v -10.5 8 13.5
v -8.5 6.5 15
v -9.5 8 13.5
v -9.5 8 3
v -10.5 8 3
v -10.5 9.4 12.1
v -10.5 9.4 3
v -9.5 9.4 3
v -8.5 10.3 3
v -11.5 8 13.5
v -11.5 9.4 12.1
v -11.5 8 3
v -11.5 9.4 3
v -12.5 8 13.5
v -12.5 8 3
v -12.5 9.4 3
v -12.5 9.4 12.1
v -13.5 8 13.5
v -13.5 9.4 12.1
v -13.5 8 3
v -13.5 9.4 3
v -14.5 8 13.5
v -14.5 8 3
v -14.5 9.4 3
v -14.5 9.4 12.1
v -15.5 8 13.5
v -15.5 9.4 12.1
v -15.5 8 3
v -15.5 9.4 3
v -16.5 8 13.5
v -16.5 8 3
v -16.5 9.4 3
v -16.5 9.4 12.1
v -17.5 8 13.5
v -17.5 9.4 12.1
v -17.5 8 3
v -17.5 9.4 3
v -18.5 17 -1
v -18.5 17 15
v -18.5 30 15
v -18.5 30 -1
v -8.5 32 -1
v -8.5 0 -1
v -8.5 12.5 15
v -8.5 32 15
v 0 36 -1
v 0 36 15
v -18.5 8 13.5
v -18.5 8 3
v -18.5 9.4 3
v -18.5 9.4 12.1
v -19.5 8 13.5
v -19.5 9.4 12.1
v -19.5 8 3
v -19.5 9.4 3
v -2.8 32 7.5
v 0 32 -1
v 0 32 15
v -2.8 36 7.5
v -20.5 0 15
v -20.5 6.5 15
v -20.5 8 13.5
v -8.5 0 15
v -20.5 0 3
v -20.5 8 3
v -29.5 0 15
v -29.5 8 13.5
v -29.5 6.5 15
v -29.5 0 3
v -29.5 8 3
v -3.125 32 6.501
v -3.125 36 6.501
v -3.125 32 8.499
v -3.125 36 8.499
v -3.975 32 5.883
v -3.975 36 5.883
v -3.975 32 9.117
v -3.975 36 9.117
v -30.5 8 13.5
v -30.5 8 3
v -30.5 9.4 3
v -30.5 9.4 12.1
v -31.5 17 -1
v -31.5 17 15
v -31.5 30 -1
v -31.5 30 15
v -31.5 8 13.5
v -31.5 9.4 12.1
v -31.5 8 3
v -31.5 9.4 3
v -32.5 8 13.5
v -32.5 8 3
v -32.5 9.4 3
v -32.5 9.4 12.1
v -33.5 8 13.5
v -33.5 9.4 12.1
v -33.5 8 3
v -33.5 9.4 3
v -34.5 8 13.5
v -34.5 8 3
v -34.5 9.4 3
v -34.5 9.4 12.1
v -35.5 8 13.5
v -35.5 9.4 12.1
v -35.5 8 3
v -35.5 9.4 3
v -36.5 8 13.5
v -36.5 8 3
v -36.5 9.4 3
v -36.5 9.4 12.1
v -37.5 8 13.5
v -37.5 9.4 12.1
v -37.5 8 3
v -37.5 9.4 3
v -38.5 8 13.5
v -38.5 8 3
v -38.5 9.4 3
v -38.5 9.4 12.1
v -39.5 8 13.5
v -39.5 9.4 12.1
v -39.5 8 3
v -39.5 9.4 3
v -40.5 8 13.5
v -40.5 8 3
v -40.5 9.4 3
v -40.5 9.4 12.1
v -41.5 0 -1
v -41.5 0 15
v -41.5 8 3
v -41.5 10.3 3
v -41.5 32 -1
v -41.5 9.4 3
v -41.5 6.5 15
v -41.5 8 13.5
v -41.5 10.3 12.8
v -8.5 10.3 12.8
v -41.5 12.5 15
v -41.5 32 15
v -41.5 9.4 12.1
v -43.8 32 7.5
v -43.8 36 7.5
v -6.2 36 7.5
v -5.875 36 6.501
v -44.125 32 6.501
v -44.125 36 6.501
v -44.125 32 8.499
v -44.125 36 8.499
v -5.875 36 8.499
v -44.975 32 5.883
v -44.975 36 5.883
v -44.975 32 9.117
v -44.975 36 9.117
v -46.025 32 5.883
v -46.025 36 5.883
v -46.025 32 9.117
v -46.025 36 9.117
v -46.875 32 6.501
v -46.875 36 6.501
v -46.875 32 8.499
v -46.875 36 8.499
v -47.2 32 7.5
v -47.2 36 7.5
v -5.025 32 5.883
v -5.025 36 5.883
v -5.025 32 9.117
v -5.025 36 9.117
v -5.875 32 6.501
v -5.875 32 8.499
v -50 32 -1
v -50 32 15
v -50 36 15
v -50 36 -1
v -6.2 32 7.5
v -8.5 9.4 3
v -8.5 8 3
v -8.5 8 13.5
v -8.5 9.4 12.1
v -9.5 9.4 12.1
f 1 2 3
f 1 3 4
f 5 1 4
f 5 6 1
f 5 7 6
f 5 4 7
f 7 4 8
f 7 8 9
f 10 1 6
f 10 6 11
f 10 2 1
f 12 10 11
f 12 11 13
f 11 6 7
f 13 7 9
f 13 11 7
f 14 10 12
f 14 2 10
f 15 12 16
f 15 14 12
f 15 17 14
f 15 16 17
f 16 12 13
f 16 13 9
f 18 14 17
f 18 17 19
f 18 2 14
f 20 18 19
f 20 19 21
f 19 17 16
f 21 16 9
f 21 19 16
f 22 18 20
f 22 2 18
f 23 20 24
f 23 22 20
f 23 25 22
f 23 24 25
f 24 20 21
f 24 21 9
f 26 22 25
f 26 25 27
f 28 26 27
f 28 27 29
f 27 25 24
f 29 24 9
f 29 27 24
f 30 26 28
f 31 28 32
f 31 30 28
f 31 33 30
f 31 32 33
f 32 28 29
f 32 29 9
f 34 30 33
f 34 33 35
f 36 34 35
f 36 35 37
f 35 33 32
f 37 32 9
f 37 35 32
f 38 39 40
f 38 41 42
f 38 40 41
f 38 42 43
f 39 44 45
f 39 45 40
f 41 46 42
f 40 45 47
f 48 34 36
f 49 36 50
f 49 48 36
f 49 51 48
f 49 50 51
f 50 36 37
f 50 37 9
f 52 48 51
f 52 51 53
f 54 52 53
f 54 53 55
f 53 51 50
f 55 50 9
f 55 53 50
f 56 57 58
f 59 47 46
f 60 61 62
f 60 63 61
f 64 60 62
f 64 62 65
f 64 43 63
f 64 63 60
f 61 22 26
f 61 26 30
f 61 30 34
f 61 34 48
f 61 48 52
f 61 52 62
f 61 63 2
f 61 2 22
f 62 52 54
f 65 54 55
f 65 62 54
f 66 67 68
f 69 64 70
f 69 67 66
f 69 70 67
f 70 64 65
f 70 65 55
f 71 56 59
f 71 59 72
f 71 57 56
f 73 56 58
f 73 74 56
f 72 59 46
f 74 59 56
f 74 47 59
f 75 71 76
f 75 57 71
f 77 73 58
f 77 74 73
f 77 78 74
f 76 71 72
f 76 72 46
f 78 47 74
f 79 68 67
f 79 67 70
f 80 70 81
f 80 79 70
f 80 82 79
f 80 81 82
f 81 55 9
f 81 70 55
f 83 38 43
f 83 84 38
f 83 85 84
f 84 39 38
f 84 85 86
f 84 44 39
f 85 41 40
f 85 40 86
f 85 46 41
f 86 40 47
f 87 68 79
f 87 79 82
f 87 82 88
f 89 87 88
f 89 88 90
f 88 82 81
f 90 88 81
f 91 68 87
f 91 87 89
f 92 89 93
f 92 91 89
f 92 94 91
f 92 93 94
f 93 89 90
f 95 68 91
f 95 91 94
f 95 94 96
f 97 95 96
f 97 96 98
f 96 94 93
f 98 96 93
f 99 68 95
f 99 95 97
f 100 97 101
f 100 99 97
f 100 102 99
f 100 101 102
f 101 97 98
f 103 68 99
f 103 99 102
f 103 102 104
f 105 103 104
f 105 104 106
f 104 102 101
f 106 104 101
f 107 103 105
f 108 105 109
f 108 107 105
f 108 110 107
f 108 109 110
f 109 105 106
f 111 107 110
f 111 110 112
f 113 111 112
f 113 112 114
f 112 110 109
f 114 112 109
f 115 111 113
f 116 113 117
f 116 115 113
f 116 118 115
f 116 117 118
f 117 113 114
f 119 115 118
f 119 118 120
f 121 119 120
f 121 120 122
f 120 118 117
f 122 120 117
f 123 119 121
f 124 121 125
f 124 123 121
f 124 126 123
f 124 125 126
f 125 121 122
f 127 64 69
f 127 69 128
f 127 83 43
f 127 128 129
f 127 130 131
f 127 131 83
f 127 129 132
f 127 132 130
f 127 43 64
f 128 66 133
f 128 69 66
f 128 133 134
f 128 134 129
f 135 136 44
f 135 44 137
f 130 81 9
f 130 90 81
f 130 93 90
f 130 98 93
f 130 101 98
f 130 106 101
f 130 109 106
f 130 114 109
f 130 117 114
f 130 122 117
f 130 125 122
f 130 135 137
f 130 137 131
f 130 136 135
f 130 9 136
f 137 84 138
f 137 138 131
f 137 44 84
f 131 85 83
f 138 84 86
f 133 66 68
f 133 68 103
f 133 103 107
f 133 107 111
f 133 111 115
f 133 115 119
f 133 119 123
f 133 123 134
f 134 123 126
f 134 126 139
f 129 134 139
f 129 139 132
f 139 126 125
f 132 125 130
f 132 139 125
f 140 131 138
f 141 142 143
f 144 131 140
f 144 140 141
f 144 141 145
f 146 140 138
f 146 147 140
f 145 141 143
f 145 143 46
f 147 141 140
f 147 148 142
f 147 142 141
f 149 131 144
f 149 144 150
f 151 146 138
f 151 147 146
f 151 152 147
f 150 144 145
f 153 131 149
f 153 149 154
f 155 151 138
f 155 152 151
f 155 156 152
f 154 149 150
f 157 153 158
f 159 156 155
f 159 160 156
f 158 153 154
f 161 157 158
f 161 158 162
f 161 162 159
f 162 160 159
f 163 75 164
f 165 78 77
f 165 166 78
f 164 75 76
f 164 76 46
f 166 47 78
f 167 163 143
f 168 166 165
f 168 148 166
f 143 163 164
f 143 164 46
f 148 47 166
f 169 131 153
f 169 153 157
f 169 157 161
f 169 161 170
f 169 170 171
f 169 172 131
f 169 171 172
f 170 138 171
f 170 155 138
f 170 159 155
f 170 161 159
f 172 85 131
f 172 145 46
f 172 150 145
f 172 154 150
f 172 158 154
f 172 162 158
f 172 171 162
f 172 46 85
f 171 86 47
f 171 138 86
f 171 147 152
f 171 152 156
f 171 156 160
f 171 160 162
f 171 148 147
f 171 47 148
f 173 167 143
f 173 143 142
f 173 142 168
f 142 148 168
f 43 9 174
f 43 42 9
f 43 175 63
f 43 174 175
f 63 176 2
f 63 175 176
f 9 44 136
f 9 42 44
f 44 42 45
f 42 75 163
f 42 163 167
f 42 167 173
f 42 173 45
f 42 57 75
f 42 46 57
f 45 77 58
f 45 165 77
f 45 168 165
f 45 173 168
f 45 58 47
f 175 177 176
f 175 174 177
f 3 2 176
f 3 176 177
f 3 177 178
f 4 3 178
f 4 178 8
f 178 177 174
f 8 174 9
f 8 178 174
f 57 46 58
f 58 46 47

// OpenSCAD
// file: ../configuration.scad
// Layer high for the printing [mm]
layer_height = 0.20; //Slic3r->Print Settings->Layers and perimeters->Layer height

// Spare for the screws heads [mm]
spare = 0.75;
// M6 screw diameter [mm]
M6_head_diameter = 13.6+spare;
//M6_head_diameter = 10.6+spare;
//M6_head_diameter = 12+spare;

// M6 head high (for hiding it) [mm]
//M6_head_height = 4;
M6_head_height = 3.6;
//M6_head_height = 4.5;

// Screws and rods diameters
M8_smooth_rod_diameter = 8.3;
M8_smooth_rod_diameter_catch = 8.4;
M6_diameter = 6.6;
M6_diamater_horizontal = 6.5;
M3_diameter = 3.7;
M3_diameter_horizontal = 3.5;

// Nuts diameters
M3_nut_diameter = 7.0;
M3_nut_diameter_horizontal = 6.7;

// ALU profile parameters
ALU_cut_width = 7.9;
ALU_cut_width_horizontal = 7.7;

// Motors length/depth (for axes Z and Y)
//SX17-1003LQFE (recommended for the Z axis)
motor_length = 29.5;
//SX17-1003 (recommended for the Z axis)
//motor_length = 34;
//SX17-1005
//motor_length = 40;
//SX17-0905 - this motor is too high - the Z end stop holder has to be adjusted
//motor_length = 48;

// Extrusion width [mm]
extrusion_width = 0.66; //Slic3r->Print Settings->Advanced->Default extrusion width

/// Belt type ******************************************************

// GT2 
belt_tooth_distance = 2;
belt_tooth_ratio = 0.5;
belt_tooth_height = 1.4;
belt_thickness = 2.3;

/*
// T2.5
belt_tooth_distance = 2.5;
belt_tooth_ratio = 0.68;
*/
// main file
// PRUSA iteration3
// y belt holder
// GNU GPL v3
// Josef Průša <iam@josefprusa.cz> and contributors
// http://www.reprap.org/wiki/Prusa_Mendel
// http://prusamendel.org

include <../configuration.scad>

x_size = 33;
x_offset = 8.5;
fix_teeth_count = 6;

module belt_holder_base(){
 translate([-x_size-x_offset,0,-1]) cube([x_size,35,16]);
 translate([-50,32,-1]) cube([50,4,16]); 
}

module belt_holder_beltcut(){
 tooth_size = belt_tooth_ratio*belt_tooth_distance;
 echo(tooth_size);
 // Belt slit
 translate([-66,-0.5+x_offset + belt_tooth_height,3]) cube([67,belt_thickness - belt_tooth_height,15]);
 // Smooth insert cutout
 translate([-66, -0.5+10, 12]) rotate([45,0,0]) cube([67,15,15]);
 // Individual teeth
    for ( i = [0 : fix_teeth_count + 1] ){
            translate([(-i*belt_tooth_distance)-x_offset,-0.5+x_offset,3]) cube([belt_tooth_ratio*belt_tooth_distance,1.7,15]);
    }
    
    for ( i = [0 : fix_teeth_count + 1] ){
            translate([i*belt_tooth_distance-tooth_size-x_offset-x_size,-0.5+x_offset,3]) cube([belt_tooth_ratio*belt_tooth_distance,1.7,15]);
    }
    
    // Middle belt opening
    left_opening_border =-x_size-x_offset+fix_teeth_count*belt_tooth_distance; 
    right_opening_border =-x_offset-fix_teeth_count*belt_tooth_distance-left_opening_border; 
    translate([left_opening_border,-1,3]) cube([right_opening_border,11,15]);	
    
    //lightenning hole
    translate([-33-8.5+10,17,-2]) cube([13,13,20]);
}

module belt_holder_holes(){
 translate([-4.5,0.1,7.5]) rotate([-90,0,0]) cylinder(h=50, r=1.7, $fn=10);
 translate([-45.5,0.1,7.5]) rotate([-90,0,0]) cylinder(h=50, r=1.7, $fn=10);
}

// Final part
module belt_holder(){
    difference(){
        belt_holder_base();
        belt_holder_beltcut();
        belt_holder_holes();
    }
}

belt_holder();
